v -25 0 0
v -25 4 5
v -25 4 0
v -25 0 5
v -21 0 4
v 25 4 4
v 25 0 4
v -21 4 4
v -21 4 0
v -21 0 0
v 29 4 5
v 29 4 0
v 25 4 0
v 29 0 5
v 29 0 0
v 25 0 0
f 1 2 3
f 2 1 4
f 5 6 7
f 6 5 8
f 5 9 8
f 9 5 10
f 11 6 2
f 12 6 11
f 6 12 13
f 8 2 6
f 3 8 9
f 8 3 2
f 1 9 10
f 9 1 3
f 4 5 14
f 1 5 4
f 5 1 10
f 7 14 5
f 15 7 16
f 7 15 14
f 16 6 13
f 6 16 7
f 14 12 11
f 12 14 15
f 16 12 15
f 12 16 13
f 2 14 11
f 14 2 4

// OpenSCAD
height = 4;
distance = 50;
size = 4;

translate([-distance/2, 0, 0]) cube([size, size, height]);
translate([distance/2, 0, 0]) cube([size, size, height]);
translate([-distance/2, 0, height]) cube([distance+size, size, 1]);
